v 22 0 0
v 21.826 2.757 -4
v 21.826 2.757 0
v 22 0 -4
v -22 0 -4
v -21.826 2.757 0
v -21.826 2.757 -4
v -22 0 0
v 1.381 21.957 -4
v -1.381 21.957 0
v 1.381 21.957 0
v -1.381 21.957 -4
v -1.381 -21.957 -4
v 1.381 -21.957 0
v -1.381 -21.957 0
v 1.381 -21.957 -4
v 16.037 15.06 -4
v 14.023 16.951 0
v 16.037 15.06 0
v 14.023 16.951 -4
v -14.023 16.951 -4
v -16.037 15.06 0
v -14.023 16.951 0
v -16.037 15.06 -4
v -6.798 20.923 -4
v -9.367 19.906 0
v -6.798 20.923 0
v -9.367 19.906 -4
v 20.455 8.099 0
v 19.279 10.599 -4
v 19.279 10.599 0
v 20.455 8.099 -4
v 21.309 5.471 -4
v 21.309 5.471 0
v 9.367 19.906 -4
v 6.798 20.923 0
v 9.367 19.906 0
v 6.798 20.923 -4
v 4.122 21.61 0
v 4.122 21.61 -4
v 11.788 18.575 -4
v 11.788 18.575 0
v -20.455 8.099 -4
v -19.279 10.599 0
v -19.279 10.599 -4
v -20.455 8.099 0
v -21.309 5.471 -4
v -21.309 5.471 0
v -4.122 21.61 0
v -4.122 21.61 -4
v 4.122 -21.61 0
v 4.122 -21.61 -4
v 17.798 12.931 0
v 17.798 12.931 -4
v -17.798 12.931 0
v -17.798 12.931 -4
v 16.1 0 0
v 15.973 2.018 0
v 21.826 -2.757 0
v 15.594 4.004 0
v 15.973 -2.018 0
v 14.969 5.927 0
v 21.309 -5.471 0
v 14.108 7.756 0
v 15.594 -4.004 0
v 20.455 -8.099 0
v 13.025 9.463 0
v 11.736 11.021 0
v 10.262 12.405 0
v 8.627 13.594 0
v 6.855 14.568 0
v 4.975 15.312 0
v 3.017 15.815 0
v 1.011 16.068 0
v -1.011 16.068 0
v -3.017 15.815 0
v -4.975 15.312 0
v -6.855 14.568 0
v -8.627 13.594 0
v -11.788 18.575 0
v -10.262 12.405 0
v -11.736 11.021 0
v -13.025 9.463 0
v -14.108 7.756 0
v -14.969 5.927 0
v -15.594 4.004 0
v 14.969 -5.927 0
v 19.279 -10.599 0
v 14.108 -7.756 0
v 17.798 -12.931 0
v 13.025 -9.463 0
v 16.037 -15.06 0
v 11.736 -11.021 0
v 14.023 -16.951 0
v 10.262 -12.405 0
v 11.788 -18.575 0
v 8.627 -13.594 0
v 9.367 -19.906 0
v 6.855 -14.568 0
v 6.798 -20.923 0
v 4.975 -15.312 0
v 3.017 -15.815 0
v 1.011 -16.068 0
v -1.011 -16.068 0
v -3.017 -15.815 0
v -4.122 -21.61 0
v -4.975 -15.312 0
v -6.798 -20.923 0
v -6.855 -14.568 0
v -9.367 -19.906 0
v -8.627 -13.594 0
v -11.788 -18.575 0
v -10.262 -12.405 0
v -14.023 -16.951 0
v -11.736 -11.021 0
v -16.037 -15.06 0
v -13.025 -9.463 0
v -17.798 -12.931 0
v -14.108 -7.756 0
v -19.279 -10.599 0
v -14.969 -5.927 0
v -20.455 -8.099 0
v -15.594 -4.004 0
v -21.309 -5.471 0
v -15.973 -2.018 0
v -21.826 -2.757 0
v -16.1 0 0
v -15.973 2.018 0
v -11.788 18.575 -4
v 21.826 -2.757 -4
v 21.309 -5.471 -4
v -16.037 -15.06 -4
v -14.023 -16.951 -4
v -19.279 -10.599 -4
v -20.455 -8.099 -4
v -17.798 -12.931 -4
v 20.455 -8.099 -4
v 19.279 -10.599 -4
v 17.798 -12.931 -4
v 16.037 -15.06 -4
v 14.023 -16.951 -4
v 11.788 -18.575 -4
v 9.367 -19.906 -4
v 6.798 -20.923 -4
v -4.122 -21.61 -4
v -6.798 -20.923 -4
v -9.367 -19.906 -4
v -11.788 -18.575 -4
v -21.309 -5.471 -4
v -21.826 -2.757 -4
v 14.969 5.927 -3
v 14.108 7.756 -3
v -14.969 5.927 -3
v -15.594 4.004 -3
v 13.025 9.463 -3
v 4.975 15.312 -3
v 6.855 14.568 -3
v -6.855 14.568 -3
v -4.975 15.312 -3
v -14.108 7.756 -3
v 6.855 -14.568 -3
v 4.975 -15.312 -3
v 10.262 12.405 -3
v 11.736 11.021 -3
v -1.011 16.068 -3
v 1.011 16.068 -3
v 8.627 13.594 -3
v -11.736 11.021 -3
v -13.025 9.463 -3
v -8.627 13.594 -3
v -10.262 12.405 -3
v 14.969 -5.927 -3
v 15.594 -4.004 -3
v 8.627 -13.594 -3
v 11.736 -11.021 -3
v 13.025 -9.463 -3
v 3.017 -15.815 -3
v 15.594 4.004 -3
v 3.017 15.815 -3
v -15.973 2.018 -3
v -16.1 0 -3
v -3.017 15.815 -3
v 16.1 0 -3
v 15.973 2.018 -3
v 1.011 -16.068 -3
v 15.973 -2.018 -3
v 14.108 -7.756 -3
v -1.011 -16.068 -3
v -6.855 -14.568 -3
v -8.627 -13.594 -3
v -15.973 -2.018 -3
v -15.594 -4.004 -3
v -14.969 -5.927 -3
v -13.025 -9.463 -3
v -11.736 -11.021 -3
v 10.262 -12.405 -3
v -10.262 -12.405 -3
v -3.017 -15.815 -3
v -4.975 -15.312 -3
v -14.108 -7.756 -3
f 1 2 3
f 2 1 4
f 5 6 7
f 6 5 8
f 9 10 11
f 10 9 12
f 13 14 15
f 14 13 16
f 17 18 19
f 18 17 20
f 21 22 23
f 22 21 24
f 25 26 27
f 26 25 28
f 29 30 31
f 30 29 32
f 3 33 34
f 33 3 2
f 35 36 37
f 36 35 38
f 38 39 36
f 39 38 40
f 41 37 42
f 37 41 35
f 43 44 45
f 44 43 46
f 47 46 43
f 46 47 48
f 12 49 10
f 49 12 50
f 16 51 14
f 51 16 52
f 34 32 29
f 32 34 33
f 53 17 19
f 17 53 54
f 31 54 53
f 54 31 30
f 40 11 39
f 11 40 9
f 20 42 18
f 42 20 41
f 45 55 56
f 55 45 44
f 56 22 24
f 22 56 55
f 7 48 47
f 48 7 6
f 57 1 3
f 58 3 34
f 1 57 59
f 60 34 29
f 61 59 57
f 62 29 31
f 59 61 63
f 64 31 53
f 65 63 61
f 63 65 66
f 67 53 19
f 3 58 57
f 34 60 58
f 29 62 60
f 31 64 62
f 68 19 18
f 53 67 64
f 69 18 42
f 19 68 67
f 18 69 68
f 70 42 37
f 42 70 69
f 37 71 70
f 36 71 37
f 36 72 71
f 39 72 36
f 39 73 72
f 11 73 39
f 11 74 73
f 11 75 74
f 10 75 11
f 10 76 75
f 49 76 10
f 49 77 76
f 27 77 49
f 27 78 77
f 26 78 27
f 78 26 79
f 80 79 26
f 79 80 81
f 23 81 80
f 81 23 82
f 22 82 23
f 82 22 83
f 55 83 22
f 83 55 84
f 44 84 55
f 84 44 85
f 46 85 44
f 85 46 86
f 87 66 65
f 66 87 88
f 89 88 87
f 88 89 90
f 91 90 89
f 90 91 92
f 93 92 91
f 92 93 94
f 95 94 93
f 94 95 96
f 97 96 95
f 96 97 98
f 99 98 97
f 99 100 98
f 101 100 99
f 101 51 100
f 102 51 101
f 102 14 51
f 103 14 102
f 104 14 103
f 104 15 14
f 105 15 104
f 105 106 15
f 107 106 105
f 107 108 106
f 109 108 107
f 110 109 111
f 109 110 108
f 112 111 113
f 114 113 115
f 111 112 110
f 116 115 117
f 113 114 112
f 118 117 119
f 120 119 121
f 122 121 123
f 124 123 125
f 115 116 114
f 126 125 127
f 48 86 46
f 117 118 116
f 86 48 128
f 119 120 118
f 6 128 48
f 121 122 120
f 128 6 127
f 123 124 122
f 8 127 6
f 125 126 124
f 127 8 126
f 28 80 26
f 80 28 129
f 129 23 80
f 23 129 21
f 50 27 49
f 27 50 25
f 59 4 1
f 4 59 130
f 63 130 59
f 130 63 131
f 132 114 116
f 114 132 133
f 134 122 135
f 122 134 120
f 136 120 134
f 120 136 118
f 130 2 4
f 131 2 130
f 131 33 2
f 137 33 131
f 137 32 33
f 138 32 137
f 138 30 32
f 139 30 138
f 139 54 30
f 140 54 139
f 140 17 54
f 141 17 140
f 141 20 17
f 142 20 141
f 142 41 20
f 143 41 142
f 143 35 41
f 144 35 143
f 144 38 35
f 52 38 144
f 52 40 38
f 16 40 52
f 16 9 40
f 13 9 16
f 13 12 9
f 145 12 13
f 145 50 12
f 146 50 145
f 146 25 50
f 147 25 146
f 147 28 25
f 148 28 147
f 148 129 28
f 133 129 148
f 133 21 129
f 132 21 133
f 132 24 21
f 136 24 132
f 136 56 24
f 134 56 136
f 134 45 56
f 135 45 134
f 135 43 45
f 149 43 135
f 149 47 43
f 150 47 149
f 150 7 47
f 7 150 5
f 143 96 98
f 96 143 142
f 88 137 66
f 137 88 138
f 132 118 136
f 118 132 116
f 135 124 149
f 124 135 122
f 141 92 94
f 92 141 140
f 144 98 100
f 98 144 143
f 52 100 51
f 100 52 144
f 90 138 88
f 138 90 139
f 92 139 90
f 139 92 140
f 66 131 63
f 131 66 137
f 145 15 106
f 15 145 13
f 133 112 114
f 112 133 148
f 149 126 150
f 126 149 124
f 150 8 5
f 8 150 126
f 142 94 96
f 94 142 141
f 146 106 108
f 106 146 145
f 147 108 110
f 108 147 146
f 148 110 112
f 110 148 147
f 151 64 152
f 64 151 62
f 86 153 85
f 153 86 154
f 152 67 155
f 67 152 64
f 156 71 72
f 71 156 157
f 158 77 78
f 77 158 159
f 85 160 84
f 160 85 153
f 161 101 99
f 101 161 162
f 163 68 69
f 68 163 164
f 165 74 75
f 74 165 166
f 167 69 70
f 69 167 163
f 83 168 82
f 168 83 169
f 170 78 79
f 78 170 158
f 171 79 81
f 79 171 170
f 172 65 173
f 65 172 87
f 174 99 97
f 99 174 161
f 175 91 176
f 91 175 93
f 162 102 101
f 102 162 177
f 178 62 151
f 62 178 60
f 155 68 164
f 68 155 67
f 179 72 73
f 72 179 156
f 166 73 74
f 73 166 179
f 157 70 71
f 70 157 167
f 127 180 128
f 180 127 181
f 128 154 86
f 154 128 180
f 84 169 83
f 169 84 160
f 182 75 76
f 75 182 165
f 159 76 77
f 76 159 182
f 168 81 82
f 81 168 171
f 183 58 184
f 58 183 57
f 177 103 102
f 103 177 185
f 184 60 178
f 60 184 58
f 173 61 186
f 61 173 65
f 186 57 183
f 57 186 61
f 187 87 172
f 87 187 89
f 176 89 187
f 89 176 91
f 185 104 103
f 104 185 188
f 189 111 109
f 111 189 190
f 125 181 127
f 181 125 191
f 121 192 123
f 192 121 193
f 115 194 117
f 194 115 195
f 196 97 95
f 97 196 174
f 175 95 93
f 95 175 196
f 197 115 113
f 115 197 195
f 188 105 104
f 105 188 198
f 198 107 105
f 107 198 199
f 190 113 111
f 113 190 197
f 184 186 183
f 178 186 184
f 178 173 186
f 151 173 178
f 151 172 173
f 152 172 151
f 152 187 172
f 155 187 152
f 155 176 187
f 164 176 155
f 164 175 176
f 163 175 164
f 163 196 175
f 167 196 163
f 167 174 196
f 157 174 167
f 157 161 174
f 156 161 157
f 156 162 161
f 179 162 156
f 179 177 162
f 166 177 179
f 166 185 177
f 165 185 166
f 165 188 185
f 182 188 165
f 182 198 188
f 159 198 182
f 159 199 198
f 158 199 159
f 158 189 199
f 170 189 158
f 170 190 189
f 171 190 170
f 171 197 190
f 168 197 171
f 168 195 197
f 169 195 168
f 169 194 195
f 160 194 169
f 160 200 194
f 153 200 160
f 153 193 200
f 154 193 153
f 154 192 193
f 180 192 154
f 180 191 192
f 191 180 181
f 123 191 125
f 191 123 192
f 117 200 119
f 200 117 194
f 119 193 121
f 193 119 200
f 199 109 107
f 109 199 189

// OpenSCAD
$fn = 50;


difference() {
	union() {
		translate(v = [0, 0, -4.0000000000]) {
			cylinder(h = 4, r = 22.0000000000);
		}
	}
	union() {
		#translate(v = [0, 0, -3.0000000000]) {
			cylinder(h = 3, r = 16.1000000000);
		}
	}
}
